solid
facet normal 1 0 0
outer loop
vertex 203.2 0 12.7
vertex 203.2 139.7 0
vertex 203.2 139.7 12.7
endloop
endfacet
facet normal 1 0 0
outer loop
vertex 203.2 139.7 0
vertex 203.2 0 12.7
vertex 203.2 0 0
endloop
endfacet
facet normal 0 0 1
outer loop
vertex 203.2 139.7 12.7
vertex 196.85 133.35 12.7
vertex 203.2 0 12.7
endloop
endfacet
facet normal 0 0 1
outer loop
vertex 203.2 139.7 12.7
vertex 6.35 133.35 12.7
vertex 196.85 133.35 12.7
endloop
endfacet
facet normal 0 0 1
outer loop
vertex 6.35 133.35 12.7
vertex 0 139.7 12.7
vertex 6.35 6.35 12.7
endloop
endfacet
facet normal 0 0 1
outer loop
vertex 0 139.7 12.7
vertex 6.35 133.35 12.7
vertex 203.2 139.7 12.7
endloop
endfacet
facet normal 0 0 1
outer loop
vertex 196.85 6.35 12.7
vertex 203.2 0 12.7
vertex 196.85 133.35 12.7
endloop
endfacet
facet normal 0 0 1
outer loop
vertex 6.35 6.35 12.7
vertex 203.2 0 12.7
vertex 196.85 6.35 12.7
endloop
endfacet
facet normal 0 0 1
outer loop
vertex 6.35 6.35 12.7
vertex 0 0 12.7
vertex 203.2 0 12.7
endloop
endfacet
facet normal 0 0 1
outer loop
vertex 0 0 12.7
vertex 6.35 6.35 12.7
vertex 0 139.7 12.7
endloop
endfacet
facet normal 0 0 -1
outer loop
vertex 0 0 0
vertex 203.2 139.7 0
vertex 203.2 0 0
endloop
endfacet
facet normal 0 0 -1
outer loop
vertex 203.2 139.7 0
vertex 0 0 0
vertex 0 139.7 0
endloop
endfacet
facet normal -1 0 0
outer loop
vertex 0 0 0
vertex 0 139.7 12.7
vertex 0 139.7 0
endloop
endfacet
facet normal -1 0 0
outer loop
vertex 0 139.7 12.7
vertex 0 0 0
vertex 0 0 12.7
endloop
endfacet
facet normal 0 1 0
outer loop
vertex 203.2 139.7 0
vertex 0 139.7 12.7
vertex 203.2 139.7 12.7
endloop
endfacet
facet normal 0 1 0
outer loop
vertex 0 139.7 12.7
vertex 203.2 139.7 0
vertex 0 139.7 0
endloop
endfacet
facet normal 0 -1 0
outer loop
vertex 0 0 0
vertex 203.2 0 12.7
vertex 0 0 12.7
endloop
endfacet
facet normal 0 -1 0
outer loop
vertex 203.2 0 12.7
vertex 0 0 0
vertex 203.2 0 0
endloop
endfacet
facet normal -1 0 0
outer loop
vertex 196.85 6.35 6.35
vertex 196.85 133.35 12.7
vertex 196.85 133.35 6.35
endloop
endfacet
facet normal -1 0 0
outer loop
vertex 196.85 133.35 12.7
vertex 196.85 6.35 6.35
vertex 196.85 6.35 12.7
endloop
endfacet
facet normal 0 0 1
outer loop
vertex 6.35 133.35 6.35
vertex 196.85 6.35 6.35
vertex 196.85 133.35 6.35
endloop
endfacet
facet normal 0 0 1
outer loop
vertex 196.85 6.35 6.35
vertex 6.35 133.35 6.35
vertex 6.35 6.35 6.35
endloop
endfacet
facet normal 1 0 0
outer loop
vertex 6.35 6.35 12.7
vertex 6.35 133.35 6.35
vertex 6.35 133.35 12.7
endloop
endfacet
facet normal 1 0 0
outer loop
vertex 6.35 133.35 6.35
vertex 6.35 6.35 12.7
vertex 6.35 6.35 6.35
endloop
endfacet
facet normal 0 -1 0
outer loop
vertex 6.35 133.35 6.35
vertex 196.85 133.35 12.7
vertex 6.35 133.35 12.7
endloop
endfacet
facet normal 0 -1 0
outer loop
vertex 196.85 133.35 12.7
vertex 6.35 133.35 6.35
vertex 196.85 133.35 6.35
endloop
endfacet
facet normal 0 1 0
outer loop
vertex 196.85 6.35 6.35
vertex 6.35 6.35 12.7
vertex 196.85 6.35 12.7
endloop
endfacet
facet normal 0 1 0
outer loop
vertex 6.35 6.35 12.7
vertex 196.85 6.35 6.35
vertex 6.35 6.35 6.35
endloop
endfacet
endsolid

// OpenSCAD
color("Blue"){
    difference(){
        cube(size=[203.2, 139.7, 12.7]);
        translate(v=[6.349999999999994, 6.349999999999994, 6.35]){
            cube(size=[190.5, 127.0, 6.35]);
        };
    };
};
